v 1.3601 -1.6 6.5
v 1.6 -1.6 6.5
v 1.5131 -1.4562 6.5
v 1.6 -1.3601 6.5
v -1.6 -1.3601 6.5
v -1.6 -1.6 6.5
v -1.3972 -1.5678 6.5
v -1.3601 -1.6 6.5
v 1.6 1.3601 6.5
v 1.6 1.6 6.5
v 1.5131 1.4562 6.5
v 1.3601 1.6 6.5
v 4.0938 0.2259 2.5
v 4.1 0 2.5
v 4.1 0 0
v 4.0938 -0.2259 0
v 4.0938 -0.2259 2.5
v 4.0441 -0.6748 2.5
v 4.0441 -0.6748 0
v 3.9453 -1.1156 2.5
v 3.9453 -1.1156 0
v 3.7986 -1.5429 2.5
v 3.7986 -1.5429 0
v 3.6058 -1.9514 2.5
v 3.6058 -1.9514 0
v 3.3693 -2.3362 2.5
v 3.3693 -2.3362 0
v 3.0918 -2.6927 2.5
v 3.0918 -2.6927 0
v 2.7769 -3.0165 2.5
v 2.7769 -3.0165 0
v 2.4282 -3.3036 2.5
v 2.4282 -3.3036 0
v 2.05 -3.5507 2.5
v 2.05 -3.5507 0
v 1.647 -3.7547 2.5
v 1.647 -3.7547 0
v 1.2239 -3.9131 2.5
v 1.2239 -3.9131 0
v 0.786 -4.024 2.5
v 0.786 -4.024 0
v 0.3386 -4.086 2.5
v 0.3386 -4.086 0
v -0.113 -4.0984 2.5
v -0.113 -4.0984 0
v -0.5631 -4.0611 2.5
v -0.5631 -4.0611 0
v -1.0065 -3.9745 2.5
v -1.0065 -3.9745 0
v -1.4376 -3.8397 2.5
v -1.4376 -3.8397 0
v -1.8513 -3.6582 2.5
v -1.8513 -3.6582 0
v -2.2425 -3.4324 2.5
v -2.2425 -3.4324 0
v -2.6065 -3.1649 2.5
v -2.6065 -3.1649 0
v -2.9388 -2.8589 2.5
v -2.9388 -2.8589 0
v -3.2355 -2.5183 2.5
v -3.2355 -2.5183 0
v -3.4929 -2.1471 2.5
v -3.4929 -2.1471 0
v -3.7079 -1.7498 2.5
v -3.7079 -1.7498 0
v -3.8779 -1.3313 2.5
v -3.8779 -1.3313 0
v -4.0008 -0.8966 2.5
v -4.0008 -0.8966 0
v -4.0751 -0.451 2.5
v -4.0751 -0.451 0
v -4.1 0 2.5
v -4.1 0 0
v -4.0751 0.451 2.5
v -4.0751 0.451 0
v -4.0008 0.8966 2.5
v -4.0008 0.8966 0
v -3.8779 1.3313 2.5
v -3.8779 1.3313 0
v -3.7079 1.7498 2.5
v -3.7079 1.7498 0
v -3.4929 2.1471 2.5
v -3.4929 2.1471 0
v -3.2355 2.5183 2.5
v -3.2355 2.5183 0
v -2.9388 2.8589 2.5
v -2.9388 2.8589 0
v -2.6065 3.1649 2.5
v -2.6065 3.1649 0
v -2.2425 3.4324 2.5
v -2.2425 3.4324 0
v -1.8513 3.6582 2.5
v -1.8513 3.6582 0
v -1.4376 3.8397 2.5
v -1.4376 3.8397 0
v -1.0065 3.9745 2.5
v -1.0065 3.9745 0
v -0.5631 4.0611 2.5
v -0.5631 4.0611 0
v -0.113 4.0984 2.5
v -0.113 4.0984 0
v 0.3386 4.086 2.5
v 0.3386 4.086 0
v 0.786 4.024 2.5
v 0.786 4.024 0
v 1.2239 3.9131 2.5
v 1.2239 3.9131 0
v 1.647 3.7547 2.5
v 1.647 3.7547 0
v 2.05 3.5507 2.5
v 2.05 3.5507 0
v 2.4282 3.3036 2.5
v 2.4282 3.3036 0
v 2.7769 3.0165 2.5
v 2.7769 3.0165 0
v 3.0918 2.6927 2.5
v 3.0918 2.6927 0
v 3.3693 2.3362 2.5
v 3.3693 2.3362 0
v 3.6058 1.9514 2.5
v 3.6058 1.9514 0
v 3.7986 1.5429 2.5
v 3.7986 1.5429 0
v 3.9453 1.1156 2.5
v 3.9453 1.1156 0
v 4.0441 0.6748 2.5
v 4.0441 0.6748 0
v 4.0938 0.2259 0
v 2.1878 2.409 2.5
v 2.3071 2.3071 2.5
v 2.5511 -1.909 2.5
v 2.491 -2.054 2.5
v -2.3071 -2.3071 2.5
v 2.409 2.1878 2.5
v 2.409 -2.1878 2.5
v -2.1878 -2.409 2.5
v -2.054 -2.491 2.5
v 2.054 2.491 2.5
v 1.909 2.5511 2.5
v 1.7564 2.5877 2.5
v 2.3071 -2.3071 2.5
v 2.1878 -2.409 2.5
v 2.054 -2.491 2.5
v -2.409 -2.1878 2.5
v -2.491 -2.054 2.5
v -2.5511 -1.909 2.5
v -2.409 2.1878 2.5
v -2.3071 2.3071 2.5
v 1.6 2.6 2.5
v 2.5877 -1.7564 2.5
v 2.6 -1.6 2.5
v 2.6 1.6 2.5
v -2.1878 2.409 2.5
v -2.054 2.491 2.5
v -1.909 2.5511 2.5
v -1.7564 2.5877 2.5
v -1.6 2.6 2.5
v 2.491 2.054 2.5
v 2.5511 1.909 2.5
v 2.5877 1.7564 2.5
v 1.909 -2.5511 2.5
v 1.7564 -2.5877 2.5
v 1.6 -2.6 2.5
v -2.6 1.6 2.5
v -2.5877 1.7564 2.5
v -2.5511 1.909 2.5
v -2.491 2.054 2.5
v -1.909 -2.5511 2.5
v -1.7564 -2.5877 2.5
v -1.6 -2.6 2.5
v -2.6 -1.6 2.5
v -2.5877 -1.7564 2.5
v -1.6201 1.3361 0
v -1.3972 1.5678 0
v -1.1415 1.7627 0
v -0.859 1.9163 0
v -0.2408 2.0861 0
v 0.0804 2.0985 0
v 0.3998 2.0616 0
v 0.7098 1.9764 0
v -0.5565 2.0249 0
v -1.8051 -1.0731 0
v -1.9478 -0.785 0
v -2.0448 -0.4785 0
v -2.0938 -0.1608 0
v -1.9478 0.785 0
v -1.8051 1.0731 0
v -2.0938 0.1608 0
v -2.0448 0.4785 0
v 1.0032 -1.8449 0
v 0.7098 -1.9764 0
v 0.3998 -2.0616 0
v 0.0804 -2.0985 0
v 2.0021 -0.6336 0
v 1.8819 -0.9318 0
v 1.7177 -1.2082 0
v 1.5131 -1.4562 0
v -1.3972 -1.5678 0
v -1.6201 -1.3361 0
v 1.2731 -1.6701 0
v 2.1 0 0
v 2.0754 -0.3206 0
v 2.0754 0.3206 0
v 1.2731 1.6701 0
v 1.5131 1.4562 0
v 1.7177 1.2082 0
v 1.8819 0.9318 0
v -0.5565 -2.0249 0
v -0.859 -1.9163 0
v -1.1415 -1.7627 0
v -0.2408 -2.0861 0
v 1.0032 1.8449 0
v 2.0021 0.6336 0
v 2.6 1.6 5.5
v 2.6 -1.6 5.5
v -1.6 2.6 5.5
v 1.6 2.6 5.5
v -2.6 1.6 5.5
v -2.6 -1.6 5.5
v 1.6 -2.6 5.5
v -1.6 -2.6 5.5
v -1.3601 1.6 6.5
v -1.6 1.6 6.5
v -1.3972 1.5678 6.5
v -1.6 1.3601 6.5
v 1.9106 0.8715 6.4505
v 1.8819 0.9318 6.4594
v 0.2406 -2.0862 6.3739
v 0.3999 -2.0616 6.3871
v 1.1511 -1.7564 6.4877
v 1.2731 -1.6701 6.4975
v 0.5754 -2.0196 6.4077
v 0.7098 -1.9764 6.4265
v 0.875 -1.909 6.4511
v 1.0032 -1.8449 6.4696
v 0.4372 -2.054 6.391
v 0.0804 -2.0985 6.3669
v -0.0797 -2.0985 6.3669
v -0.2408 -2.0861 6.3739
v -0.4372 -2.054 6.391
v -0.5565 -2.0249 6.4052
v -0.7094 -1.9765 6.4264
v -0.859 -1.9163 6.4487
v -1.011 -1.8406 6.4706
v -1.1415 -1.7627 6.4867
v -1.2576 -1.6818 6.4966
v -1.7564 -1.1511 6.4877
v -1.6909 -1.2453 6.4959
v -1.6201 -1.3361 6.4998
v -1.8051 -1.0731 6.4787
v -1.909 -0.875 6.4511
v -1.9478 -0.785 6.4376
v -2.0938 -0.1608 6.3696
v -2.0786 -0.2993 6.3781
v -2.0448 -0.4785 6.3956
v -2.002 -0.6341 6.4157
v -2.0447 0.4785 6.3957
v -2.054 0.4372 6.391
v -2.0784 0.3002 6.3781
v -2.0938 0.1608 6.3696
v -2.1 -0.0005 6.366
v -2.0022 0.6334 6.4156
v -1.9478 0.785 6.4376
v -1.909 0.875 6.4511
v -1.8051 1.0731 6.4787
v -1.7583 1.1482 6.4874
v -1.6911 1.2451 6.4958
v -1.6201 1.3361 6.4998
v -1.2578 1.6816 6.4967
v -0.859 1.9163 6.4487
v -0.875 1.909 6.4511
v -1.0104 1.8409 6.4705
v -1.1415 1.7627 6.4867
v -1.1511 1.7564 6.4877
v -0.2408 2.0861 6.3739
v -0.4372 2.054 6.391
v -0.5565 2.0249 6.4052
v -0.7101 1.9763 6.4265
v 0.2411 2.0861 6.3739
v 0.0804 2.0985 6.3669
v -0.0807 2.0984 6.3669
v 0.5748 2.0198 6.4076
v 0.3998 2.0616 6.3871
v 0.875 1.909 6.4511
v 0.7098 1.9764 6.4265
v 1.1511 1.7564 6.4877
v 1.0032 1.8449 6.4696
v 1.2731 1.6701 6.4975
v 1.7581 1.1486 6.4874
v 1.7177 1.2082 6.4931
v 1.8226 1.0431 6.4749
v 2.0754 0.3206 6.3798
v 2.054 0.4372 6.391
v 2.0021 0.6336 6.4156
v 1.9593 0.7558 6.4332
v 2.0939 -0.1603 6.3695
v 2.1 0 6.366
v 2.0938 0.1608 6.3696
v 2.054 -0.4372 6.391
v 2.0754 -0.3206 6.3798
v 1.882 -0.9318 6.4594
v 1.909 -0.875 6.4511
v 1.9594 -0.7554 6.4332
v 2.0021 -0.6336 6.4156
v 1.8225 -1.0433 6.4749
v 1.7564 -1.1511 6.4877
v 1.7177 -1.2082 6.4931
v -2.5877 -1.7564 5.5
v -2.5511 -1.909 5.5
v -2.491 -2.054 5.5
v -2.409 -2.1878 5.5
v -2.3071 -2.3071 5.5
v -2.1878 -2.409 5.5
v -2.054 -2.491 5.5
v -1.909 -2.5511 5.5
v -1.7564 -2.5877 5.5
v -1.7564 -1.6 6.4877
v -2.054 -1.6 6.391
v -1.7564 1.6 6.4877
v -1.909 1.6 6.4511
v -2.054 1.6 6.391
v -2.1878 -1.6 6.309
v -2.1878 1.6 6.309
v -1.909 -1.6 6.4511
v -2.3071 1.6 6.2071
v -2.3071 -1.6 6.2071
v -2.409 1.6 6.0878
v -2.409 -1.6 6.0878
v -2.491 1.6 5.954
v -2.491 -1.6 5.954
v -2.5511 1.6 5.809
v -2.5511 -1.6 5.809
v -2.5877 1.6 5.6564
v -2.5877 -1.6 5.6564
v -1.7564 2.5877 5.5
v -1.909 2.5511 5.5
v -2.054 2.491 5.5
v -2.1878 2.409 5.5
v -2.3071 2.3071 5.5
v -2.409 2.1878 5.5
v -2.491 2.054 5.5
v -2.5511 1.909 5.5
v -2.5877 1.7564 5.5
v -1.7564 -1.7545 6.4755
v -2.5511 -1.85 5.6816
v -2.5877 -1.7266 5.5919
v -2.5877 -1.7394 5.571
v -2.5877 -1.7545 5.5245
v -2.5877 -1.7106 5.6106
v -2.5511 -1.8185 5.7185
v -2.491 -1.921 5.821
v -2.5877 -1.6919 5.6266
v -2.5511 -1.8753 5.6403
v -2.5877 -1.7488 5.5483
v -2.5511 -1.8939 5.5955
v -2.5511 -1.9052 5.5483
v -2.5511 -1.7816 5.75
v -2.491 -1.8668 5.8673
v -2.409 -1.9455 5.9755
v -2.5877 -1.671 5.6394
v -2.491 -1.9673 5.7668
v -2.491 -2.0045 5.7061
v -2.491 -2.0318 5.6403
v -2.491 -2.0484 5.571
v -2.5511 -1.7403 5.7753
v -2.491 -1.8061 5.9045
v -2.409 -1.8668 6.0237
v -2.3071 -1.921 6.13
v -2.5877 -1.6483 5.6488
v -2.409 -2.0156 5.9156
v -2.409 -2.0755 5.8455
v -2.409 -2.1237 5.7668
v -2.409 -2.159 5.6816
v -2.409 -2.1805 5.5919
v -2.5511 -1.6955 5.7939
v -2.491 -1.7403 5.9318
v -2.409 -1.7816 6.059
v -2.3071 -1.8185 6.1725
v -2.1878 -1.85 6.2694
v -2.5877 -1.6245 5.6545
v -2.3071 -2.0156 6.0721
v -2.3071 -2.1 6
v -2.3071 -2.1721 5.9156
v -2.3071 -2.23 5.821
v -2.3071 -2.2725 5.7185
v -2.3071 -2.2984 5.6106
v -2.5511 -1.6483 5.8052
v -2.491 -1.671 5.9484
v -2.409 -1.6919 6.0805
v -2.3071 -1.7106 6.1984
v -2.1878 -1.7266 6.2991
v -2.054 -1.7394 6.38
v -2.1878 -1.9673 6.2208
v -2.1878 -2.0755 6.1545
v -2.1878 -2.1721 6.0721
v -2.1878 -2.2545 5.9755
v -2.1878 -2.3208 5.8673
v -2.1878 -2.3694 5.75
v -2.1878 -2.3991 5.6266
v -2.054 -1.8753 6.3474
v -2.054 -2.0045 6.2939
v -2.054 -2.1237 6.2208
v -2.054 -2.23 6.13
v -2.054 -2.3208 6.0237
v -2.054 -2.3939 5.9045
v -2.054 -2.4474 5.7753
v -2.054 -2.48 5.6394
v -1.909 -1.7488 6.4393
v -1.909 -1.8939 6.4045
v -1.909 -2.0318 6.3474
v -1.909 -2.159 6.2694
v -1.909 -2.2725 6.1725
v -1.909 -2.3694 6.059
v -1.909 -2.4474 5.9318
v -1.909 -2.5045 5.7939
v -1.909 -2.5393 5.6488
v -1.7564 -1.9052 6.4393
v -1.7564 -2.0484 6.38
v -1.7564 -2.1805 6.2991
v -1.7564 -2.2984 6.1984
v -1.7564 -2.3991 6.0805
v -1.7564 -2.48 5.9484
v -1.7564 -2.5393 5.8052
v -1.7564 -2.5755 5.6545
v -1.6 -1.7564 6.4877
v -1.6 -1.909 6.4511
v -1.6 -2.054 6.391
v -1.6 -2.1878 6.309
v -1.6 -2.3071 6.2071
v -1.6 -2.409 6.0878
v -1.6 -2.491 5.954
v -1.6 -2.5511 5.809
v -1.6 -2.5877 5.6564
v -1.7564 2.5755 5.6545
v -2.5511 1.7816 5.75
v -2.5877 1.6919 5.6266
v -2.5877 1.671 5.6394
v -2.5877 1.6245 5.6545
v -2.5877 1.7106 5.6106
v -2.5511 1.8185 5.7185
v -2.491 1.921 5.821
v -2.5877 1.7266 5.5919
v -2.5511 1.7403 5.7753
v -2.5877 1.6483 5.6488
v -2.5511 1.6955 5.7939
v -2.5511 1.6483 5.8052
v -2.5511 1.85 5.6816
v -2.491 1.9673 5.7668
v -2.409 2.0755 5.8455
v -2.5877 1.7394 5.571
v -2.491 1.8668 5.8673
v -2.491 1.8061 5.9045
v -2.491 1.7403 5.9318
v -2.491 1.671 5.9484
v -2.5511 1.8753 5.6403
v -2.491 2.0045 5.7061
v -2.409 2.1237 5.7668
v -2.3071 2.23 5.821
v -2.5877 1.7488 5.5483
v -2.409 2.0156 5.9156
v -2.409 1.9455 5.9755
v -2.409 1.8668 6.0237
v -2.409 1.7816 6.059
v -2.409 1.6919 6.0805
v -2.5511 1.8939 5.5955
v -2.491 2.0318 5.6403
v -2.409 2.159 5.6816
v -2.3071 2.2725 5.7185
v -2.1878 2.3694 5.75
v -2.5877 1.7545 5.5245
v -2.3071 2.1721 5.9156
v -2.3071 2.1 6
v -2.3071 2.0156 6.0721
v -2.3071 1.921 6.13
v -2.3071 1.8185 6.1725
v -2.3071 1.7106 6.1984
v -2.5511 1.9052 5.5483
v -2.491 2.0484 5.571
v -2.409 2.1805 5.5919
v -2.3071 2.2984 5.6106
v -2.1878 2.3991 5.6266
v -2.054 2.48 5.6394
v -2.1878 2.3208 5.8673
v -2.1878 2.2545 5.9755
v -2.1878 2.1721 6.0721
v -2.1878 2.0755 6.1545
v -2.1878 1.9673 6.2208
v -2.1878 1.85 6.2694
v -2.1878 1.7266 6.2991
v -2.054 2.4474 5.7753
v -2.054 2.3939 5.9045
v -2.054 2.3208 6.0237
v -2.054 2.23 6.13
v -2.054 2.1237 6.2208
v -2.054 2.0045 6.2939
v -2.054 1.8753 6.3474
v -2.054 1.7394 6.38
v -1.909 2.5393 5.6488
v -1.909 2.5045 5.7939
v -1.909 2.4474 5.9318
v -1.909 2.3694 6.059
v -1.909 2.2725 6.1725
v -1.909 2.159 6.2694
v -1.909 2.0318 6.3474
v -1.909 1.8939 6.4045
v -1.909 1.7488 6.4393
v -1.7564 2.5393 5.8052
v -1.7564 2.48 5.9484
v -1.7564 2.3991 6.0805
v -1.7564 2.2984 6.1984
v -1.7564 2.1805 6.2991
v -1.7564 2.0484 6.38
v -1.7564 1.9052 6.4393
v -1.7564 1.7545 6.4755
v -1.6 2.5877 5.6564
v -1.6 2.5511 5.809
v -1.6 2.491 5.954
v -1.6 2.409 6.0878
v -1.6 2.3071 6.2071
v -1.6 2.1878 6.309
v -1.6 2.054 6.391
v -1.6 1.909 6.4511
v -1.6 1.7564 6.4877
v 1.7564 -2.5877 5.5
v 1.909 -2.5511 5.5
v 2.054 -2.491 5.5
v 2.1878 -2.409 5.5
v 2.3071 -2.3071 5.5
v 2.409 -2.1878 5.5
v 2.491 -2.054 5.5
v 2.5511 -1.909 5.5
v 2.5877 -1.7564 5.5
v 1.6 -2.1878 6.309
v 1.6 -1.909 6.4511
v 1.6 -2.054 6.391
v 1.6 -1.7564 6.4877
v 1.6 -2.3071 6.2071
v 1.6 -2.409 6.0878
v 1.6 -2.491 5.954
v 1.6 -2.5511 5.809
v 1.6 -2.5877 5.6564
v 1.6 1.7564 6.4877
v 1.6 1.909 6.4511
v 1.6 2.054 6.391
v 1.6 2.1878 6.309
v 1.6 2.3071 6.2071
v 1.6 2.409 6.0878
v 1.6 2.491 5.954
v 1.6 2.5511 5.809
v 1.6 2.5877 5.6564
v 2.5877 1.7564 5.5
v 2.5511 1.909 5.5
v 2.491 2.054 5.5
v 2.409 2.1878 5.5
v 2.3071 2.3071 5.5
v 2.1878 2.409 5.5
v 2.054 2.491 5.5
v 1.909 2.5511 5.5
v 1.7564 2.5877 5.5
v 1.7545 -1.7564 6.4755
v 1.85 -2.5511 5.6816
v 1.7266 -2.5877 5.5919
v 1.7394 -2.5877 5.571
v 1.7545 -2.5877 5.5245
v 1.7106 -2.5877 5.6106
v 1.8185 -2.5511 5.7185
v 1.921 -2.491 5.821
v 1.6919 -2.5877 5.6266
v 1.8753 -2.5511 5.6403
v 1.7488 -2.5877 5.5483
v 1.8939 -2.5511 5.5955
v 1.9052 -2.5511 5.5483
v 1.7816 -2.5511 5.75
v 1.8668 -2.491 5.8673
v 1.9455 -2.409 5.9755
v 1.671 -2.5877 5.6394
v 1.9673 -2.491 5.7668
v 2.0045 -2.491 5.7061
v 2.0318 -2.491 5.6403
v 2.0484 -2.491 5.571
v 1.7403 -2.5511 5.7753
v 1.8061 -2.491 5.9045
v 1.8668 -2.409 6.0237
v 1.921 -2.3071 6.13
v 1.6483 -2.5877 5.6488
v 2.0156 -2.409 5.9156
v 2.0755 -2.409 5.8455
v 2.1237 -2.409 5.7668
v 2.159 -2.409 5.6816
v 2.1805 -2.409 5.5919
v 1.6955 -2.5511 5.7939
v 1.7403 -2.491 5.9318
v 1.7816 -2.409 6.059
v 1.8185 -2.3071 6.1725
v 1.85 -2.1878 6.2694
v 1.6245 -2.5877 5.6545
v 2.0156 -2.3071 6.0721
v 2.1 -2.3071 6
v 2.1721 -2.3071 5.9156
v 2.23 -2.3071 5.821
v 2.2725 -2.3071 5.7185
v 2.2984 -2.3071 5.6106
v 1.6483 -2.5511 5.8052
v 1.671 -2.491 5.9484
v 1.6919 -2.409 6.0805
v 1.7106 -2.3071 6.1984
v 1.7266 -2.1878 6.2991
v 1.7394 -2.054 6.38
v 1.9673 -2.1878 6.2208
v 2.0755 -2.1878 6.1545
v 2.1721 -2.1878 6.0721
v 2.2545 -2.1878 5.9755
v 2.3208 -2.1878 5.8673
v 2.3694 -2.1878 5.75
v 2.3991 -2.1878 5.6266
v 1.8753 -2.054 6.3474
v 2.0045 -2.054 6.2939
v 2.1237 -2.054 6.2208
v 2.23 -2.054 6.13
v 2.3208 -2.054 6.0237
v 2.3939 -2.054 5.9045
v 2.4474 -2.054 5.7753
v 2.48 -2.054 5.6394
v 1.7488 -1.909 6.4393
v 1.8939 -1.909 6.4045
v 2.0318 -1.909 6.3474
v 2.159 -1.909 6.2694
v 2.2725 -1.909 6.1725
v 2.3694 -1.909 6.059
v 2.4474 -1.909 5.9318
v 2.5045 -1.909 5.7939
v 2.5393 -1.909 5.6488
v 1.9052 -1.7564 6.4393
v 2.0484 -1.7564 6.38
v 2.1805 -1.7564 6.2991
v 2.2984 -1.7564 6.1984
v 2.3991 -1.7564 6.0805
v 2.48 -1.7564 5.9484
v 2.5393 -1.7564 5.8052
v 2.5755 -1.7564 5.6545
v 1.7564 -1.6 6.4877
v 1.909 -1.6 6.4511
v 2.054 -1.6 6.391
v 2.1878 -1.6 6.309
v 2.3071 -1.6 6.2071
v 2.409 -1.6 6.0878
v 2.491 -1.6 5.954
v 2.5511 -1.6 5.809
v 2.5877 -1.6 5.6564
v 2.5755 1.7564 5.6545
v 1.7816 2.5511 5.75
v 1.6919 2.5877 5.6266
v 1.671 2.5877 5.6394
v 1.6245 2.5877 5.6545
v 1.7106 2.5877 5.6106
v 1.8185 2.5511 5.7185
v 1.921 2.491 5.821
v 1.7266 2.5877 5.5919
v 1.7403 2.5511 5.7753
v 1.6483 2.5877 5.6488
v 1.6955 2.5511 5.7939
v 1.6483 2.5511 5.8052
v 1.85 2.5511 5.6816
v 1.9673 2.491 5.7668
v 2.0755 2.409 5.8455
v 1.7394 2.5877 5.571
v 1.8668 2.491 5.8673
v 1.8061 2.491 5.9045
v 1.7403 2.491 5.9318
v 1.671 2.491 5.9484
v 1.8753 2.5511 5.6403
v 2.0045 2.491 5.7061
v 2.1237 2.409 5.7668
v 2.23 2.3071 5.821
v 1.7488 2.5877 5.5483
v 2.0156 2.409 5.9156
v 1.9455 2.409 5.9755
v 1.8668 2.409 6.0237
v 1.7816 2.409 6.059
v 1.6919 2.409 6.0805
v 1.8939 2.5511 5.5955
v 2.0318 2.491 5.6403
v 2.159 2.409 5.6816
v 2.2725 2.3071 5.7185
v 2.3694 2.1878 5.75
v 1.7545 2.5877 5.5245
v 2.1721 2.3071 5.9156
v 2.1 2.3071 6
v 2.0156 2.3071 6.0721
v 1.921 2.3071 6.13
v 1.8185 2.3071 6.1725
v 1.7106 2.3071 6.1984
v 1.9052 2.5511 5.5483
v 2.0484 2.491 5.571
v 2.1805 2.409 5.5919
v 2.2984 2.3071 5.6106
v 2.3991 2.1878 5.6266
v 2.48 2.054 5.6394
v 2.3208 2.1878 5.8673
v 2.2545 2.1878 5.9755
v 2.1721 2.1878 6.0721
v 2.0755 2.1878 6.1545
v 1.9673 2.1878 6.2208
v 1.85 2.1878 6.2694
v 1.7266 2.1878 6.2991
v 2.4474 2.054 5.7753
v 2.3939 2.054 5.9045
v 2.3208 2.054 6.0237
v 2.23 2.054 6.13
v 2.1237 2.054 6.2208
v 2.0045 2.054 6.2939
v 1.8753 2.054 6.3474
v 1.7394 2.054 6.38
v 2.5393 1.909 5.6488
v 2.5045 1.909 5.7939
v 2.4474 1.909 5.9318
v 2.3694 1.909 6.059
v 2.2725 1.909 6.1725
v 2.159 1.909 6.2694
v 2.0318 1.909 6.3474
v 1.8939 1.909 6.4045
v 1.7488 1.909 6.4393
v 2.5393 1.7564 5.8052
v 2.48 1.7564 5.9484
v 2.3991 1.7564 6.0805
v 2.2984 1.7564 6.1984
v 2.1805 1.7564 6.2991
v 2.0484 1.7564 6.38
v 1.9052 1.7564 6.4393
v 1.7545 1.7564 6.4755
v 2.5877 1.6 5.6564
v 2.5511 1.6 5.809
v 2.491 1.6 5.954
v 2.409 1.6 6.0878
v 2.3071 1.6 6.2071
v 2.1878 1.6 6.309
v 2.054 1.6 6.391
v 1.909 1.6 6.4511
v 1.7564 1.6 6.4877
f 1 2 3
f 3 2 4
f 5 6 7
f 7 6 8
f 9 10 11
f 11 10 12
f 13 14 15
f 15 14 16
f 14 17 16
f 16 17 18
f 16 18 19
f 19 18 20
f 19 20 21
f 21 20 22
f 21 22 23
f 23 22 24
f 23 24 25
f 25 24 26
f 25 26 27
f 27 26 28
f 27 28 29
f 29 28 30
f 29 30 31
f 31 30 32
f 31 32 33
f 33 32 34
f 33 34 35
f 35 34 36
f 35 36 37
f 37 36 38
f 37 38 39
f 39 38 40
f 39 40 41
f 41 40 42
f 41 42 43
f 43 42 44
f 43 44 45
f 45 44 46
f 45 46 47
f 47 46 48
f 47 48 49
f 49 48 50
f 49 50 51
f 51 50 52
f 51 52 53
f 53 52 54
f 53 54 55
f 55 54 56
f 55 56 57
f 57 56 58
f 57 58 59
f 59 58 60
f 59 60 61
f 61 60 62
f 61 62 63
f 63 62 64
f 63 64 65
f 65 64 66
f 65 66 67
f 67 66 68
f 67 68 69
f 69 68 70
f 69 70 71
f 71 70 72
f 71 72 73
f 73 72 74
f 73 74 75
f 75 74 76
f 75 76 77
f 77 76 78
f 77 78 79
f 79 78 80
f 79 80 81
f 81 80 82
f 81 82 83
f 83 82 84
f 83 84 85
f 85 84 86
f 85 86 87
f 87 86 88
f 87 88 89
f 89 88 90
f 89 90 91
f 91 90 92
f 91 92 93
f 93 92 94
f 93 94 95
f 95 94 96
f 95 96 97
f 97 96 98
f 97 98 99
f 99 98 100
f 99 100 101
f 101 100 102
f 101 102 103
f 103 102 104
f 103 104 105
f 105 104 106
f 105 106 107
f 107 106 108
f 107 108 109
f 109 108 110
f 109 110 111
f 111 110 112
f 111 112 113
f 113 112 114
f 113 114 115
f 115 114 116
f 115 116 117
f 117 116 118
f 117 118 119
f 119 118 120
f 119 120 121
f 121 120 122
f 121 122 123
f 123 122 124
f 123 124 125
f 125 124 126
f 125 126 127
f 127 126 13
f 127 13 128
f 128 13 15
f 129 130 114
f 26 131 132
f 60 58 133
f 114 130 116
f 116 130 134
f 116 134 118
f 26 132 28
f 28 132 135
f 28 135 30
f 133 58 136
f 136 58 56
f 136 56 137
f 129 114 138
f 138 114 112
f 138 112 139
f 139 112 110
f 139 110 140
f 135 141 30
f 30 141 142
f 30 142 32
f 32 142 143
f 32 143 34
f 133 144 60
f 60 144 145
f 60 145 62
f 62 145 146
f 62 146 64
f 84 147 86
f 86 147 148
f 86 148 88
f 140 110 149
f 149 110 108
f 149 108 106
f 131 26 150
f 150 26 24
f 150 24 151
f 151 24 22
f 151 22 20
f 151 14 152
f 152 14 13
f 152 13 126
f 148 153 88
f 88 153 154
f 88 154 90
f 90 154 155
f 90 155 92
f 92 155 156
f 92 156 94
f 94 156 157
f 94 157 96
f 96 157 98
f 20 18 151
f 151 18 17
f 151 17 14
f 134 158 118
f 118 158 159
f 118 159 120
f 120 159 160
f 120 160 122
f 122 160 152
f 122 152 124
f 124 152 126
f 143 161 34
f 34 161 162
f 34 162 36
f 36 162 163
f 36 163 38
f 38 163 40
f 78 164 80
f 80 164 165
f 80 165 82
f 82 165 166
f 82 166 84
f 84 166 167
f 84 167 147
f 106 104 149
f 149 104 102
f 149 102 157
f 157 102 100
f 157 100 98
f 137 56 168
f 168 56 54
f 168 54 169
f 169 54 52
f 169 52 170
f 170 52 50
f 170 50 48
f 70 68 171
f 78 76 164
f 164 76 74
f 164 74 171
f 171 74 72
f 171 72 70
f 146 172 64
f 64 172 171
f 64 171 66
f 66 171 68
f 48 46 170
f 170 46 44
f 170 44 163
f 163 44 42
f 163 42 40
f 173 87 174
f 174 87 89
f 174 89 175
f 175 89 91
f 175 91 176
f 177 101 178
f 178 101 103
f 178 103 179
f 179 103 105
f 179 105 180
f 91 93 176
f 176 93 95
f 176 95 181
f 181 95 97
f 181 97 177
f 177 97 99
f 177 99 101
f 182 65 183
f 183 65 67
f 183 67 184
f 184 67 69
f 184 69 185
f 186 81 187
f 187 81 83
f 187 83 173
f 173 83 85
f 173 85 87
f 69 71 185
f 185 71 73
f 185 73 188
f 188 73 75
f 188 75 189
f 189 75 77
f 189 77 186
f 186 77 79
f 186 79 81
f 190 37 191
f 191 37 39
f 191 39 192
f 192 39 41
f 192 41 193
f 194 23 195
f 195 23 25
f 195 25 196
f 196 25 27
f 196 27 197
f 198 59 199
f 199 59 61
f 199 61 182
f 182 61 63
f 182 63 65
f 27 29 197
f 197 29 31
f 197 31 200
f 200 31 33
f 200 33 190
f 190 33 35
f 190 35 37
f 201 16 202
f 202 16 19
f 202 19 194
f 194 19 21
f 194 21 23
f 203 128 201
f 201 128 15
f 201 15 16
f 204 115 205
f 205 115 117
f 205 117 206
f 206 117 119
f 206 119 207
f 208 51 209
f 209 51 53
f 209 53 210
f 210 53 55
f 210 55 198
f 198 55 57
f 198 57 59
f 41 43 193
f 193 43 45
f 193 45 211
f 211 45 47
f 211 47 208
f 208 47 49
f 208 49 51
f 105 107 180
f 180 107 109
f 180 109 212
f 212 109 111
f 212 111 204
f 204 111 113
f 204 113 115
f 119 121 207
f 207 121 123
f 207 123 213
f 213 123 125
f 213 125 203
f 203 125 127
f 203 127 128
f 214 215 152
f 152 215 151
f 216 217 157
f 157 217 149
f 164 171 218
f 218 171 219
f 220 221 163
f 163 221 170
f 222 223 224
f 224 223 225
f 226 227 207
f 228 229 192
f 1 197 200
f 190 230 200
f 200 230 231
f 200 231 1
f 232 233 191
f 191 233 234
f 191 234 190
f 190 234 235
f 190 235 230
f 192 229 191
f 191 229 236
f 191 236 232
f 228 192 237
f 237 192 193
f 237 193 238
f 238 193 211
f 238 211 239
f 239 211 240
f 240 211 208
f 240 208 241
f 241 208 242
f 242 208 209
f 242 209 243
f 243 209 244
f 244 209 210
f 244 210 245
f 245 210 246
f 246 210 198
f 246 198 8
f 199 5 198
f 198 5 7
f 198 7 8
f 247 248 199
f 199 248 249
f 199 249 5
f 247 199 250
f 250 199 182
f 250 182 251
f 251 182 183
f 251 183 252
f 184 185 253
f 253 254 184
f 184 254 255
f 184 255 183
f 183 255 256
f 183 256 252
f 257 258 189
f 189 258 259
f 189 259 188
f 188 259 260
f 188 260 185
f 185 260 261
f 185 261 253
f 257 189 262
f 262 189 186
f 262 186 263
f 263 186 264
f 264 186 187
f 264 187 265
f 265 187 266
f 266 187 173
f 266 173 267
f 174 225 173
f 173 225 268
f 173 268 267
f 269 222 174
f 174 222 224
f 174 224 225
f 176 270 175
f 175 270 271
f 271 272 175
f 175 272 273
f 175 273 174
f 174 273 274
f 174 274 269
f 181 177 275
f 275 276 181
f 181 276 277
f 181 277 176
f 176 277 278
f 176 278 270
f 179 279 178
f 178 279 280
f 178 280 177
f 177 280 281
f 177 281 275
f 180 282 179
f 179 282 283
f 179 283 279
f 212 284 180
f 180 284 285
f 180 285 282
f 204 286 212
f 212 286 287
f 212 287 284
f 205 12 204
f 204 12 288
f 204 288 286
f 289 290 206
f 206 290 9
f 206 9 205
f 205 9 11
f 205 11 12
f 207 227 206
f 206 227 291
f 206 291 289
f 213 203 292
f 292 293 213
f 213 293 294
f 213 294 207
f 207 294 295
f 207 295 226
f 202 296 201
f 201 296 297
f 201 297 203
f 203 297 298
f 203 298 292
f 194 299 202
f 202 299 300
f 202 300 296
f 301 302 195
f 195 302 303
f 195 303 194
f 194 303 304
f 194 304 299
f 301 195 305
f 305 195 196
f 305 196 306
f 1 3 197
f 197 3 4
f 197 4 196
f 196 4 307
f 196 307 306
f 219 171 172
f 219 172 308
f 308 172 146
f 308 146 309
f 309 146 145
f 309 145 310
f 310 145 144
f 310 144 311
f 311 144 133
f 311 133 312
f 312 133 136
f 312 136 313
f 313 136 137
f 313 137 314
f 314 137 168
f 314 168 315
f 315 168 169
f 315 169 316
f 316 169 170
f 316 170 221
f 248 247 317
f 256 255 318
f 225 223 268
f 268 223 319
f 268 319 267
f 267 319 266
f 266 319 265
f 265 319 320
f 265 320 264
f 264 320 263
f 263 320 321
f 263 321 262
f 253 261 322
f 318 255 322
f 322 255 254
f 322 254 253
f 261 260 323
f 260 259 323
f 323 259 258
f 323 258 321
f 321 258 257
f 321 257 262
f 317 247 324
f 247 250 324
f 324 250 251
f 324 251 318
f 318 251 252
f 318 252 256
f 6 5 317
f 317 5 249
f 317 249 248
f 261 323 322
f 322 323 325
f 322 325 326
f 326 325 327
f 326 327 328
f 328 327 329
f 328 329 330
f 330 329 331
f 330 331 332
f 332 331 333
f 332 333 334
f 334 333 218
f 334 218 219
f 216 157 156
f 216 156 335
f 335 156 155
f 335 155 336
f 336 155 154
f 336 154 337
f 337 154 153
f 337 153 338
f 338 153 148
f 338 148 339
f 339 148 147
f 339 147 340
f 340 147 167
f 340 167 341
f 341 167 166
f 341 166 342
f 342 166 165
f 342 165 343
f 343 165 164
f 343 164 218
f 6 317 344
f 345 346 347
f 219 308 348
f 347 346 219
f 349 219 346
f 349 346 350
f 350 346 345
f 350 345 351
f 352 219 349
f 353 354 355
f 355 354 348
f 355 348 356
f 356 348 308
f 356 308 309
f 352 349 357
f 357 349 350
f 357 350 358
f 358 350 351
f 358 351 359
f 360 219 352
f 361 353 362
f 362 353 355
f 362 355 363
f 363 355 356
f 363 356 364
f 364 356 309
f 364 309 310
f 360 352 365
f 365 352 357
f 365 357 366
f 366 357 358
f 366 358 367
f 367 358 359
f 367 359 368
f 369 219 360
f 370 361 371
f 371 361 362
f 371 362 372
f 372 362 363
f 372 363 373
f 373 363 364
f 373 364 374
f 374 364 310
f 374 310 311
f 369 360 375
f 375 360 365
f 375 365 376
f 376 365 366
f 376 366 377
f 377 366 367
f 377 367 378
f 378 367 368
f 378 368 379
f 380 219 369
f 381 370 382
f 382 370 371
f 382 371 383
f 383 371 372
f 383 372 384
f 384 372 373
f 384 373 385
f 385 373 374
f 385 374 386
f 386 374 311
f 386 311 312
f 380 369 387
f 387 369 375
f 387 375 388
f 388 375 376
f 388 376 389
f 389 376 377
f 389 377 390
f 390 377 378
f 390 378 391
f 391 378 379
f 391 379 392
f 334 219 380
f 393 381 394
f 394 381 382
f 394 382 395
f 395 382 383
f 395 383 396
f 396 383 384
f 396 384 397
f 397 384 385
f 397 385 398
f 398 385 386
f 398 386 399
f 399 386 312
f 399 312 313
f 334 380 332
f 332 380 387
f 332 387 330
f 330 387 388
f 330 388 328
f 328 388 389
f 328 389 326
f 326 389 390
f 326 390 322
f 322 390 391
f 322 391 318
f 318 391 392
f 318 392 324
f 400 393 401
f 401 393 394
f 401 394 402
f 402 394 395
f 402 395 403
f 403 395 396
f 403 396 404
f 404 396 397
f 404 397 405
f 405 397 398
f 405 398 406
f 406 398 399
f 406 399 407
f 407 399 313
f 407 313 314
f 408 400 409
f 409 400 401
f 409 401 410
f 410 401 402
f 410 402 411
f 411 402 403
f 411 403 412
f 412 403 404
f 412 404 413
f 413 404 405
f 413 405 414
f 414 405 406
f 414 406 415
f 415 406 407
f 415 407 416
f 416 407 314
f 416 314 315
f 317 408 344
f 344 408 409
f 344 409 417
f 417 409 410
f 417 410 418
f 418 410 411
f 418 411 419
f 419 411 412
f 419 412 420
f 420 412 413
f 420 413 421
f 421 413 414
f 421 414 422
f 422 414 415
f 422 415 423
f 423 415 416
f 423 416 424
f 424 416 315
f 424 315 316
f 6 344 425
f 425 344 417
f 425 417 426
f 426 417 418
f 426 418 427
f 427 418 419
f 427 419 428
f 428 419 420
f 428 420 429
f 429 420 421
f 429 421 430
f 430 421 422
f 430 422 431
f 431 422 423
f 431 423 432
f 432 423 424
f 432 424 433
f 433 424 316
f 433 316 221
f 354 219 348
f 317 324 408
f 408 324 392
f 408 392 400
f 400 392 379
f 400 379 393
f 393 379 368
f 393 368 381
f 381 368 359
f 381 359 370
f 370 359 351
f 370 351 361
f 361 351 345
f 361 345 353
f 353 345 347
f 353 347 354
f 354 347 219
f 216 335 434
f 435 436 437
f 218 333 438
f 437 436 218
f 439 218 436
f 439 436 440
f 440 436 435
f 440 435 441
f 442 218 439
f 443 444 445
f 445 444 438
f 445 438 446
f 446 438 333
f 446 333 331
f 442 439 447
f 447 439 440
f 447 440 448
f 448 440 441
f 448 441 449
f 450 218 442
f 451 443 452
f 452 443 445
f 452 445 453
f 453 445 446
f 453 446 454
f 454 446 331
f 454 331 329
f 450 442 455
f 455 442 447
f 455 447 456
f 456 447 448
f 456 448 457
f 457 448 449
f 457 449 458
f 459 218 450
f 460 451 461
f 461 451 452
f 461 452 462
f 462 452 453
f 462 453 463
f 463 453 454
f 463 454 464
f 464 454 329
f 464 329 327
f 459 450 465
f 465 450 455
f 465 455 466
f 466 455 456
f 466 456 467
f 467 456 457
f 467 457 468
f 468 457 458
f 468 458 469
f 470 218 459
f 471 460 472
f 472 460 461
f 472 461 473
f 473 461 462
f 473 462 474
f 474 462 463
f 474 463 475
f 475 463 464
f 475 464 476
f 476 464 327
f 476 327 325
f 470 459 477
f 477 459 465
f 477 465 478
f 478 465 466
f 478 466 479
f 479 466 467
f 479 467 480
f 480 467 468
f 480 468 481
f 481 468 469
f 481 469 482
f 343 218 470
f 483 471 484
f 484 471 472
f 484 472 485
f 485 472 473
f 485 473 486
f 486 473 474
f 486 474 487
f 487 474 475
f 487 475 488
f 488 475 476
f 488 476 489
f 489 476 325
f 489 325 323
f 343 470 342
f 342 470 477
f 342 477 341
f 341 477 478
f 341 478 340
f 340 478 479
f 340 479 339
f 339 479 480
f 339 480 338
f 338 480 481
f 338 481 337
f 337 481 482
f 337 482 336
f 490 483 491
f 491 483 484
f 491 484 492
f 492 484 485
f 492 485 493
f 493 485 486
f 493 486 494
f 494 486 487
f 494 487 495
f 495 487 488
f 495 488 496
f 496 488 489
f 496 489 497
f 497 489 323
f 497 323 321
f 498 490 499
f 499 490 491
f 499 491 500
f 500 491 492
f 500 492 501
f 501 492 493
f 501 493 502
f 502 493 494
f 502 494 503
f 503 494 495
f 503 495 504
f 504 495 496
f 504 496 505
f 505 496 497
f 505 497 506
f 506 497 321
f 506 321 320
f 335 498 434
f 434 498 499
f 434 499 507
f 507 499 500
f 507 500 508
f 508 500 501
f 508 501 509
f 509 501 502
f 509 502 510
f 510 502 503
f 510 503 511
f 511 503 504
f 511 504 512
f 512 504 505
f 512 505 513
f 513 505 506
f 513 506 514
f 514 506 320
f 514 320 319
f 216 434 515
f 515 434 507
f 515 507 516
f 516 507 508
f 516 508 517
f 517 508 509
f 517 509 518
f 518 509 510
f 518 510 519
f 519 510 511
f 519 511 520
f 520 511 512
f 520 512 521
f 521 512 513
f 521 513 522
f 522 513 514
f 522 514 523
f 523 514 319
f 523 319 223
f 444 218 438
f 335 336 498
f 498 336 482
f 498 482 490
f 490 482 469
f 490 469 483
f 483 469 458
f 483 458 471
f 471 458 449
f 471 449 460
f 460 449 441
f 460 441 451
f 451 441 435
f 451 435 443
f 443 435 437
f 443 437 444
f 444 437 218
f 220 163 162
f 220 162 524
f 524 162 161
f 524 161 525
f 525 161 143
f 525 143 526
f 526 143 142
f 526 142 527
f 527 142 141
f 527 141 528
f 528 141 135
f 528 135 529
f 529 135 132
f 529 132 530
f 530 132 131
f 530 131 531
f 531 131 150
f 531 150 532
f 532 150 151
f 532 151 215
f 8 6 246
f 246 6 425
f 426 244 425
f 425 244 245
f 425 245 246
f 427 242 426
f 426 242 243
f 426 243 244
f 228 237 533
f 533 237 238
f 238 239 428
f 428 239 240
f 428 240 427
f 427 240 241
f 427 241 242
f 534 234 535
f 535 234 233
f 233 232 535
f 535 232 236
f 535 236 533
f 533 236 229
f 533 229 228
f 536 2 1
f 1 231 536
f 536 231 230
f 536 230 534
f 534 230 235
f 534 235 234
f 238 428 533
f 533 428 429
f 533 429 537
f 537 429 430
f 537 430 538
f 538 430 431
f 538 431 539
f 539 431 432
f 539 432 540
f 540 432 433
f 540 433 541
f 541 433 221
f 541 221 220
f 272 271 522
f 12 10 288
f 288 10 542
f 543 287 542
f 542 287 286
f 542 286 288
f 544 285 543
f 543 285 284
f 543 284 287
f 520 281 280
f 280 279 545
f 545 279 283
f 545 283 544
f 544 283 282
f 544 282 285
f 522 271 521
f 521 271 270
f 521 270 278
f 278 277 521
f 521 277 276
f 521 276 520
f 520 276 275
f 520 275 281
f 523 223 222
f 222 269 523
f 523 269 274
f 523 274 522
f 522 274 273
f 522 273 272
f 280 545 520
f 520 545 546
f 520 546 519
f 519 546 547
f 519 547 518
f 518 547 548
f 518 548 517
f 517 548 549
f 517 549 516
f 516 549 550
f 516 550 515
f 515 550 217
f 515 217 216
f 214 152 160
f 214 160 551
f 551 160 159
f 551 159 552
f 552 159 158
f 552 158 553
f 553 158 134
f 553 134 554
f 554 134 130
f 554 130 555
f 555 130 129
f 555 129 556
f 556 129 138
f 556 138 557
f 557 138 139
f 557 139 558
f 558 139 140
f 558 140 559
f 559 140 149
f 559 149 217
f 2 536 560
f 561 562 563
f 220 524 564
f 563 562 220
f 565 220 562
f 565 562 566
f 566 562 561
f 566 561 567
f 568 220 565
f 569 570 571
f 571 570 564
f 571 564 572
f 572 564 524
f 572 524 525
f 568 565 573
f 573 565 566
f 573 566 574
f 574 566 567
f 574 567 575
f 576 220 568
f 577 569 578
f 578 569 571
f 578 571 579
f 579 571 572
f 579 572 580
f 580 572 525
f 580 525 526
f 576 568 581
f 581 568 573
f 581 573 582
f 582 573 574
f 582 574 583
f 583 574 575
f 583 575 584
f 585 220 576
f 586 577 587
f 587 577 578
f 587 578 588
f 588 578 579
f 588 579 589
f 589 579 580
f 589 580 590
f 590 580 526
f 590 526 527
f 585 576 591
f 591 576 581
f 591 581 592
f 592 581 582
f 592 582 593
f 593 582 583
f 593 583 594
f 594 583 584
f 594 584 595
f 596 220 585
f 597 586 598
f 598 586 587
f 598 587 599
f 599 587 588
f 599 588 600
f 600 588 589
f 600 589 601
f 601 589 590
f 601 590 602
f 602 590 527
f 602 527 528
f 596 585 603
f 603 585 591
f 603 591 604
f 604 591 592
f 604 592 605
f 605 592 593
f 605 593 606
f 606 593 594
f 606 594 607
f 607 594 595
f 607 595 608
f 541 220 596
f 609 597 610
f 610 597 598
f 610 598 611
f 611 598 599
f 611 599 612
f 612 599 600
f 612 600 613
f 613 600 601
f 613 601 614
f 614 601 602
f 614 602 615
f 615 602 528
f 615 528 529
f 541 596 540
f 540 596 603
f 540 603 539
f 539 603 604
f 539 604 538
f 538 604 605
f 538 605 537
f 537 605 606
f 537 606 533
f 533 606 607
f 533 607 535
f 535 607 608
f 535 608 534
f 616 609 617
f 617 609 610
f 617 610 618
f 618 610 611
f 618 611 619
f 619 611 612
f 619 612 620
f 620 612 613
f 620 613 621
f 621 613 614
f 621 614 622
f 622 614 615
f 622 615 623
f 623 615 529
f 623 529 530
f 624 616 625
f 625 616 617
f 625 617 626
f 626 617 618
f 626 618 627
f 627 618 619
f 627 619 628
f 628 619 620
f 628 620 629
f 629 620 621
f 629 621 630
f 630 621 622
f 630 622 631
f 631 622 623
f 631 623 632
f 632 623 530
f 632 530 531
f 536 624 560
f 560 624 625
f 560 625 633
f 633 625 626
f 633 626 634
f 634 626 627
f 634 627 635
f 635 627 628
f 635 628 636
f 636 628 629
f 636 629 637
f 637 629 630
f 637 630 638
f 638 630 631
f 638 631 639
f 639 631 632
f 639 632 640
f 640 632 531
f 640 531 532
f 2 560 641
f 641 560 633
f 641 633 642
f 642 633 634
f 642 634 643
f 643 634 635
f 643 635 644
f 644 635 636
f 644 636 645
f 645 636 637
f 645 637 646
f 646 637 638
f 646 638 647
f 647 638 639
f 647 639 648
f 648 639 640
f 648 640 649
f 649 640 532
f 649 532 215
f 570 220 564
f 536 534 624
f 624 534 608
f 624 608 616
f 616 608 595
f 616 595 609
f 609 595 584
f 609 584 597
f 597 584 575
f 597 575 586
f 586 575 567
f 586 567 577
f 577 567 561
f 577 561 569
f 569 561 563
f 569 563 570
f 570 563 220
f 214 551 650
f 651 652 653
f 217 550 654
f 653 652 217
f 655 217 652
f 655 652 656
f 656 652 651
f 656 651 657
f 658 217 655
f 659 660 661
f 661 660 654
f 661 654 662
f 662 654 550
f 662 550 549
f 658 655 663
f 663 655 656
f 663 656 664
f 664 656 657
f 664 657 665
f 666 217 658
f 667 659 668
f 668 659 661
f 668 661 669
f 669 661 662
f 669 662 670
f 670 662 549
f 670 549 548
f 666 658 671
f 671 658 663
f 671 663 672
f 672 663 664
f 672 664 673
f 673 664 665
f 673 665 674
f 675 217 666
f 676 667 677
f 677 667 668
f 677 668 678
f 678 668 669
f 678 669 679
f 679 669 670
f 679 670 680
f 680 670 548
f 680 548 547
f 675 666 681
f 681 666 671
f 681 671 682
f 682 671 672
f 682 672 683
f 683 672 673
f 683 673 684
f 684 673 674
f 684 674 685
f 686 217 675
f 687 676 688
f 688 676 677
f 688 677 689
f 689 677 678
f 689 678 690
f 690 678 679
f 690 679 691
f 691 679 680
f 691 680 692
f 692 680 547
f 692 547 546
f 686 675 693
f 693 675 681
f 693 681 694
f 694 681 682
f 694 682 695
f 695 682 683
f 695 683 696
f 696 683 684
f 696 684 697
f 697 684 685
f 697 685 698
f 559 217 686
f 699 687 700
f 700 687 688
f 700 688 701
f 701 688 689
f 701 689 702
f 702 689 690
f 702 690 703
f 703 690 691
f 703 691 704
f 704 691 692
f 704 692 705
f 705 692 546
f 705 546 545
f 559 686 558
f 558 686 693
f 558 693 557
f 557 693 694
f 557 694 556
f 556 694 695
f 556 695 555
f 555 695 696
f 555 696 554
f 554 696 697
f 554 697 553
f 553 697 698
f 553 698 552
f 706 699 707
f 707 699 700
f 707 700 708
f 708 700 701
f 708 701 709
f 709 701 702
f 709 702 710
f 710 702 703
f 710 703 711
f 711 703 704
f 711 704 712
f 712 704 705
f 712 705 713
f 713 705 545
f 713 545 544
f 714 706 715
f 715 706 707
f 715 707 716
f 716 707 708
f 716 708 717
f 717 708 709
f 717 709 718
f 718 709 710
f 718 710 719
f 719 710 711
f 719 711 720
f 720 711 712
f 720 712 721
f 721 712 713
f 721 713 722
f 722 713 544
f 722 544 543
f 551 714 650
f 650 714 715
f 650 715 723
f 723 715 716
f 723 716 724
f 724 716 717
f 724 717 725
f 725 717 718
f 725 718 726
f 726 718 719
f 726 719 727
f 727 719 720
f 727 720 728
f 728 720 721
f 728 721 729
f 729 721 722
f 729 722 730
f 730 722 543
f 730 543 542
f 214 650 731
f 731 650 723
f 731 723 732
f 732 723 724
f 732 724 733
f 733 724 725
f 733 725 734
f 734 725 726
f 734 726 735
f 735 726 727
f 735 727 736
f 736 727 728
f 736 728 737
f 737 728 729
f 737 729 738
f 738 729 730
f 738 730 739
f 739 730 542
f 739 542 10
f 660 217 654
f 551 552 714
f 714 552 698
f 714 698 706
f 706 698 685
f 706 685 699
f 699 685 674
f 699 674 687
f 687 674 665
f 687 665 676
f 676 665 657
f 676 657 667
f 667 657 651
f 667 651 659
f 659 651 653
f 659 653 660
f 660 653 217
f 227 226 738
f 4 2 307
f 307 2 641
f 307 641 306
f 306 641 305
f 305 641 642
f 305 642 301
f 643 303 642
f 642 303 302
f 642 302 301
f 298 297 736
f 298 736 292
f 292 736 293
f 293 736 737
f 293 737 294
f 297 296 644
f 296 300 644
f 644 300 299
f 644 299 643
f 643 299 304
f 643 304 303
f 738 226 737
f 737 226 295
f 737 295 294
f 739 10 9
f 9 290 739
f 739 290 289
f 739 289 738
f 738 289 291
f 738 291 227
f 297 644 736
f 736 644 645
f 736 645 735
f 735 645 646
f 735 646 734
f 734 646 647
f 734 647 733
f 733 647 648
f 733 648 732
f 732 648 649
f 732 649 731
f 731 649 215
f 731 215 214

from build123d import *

# Parameters (mm, degrees)
SKETCH1_R           = 4.1
BOSS_EXTRUDE1_DEPTH = 2.5
SKETCH2_W           = 5.2
SKETCH2_H           = 5.2
BOSS_EXTRUDE2_DEPTH = 4
SKETCH3_R           = 2.1
CUT_EXTRUDE1_DEPTH  = 9.710338685
FILLET1_R           = 1


with BuildPart() as part:
    # Sketch1 → Boss-Extrude1 (new body)
    with BuildSketch(Plane(origin=(0, 0, 0), x_dir=(0, 1, 0), z_dir=(0, 0, 1))):
        with Locations(Location((0, 0, 0), (0, 0, 270))):
            Circle(SKETCH1_R)
    extrude(amount=BOSS_EXTRUDE1_DEPTH)

    # Sketch2 → Boss-Extrude2 (add)
    with BuildSketch(Plane.XY.offset(2.5)):
        Rectangle(SKETCH2_W, SKETCH2_H)
    extrude(amount=BOSS_EXTRUDE2_DEPTH)

    # Sketch3 → Cut-Extrude1 (cut, through all)
    with BuildSketch(Plane.XY.offset(6.5)):
        Circle(SKETCH3_R)
    extrude(amount=-CUT_EXTRUDE1_DEPTH, mode=Mode.SUBTRACT)

    # Fillet1
    # the kernel refuses this fillet: 1 mm, written as the material it takes off along each edge
    with BuildSketch(Plane(origin=(-1.6, -1.6, 5.5), x_dir=(0, -1, 0), z_dir=(0, 0, 1))) as fillet1_piece_1_section:
        Polygon((0, 0), (FILLET1_R, 0), (FILLET1_R, -FILLET1_R), (0, -FILLET1_R), align=None)
    fillet1_piece_1 = extrude(amount=FILLET1_R, mode=Mode.PRIVATE)
    fillet1_piece_1 = fillet1_piece_1 - Plane(origin=(-1.6, -1.6, 5.5), x_dir=(0.7071067811865475, 0.7071067811865475, 0), z_dir=(0, 0, 1)) * Sphere(FILLET1_R, mode=Mode.PRIVATE)
    add(fillet1_piece_1, mode=Mode.SUBTRACT)
    with BuildSketch(Plane(origin=(1.6, -1.6, 5.5), x_dir=(0, -1, 0), z_dir=(0, 0, 1))) as fillet1_piece_2_section:
        Polygon((0, 0), (FILLET1_R, 0), (FILLET1_R, FILLET1_R), (0, FILLET1_R), align=None)
    fillet1_piece_2 = extrude(amount=FILLET1_R, mode=Mode.PRIVATE)
    fillet1_piece_2 = fillet1_piece_2 - Plane(origin=(1.6, -1.6, 5.5), x_dir=(-0.7071067811865475, 0.7071067811865475, 0), z_dir=(0, 0, 1)) * Sphere(FILLET1_R, mode=Mode.PRIVATE)
    add(fillet1_piece_2, mode=Mode.SUBTRACT)
    with BuildSketch(Plane(origin=(1.6, 1.6, 5.5), x_dir=(1, 0, 0), z_dir=(0, 0, 1))) as fillet1_piece_3_section:
        Polygon((0, 0), (FILLET1_R, 0), (FILLET1_R, FILLET1_R), (0, FILLET1_R), align=None)
    fillet1_piece_3 = extrude(amount=FILLET1_R, mode=Mode.PRIVATE)
    fillet1_piece_3 = fillet1_piece_3 - Plane(origin=(1.6, 1.6, 5.5), x_dir=(-0.7071067811865475, -0.7071067811865475, 0), z_dir=(0, 0, 1)) * Sphere(FILLET1_R, mode=Mode.PRIVATE)
    add(fillet1_piece_3, mode=Mode.SUBTRACT)
    with BuildSketch(Plane(origin=(-1.6, 1.6, 5.5), x_dir=(0, 1, 0), z_dir=(0, 0, 1))) as fillet1_piece_4_section:
        Polygon((0, 0), (FILLET1_R, 0), (FILLET1_R, FILLET1_R), (0, FILLET1_R), align=None)
    fillet1_piece_4 = extrude(amount=FILLET1_R, mode=Mode.PRIVATE)
    fillet1_piece_4 = fillet1_piece_4 - Plane(origin=(-1.6, 1.6, 5.5), x_dir=(0.7071067811865475, -0.7071067811865475, 0), z_dir=(0, 0, 1)) * Sphere(FILLET1_R, mode=Mode.PRIVATE)
    add(fillet1_piece_4, mode=Mode.SUBTRACT)
    with BuildSketch(Plane(origin=(-1.6, -2.6, 6.5), x_dir=(0, 0, -1), z_dir=(1, 0, 0)), Plane(origin=(2.6, -1.6, 6.5), x_dir=(0, 0, -1), z_dir=(0, 1, 0)), Plane(origin=(1.6, 2.6, 6.5), x_dir=(0, 0, -1), z_dir=(-1, 0, 0)), Plane(origin=(-2.6, 1.6, 6.5), x_dir=(0, 0, -1), z_dir=(0, -1, 0))) as fillet1_piece_5:
        with BuildLine():
            CenterArc((FILLET1_R, FILLET1_R), FILLET1_R, 180, 90)
            Line((0, FILLET1_R), (0, 0))
            Line((0, 0), (FILLET1_R, 0))
        make_face()
    extrude(amount=3.2, mode=Mode.SUBTRACT)
    with BuildSketch(Plane(origin=(2.6, -2.6, 2.5), x_dir=(-1, 0, 0), z_dir=(0, 0, 1)), Plane(origin=(2.6, 2.6, 2.5), x_dir=(0, -1, 0), z_dir=(0, 0, 1)), Plane(origin=(-2.6, 2.6, 2.5), x_dir=(1, 0, 0), z_dir=(0, 0, 1))) as fillet1_piece_6:
        with BuildLine():
            CenterArc((FILLET1_R, -FILLET1_R), FILLET1_R, 90, 90)
            Line((0, -FILLET1_R), (0, 0))
            Line((0, 0), (FILLET1_R, 0))
        make_face()
    extrude(amount=3, mode=Mode.SUBTRACT)
    with BuildSketch(Plane(origin=(-2.6, -2.6, 2.5), x_dir=(1, 0, 0), z_dir=(0, 0, 1))) as fillet1_piece_7:
        with BuildLine():
            CenterArc((FILLET1_R, FILLET1_R), FILLET1_R, 180, 90)
            Line((0, FILLET1_R), (0, 0))
            Line((0, 0), (FILLET1_R, 0))
        make_face()
    extrude(amount=3, mode=Mode.SUBTRACT)


solid = part.part
